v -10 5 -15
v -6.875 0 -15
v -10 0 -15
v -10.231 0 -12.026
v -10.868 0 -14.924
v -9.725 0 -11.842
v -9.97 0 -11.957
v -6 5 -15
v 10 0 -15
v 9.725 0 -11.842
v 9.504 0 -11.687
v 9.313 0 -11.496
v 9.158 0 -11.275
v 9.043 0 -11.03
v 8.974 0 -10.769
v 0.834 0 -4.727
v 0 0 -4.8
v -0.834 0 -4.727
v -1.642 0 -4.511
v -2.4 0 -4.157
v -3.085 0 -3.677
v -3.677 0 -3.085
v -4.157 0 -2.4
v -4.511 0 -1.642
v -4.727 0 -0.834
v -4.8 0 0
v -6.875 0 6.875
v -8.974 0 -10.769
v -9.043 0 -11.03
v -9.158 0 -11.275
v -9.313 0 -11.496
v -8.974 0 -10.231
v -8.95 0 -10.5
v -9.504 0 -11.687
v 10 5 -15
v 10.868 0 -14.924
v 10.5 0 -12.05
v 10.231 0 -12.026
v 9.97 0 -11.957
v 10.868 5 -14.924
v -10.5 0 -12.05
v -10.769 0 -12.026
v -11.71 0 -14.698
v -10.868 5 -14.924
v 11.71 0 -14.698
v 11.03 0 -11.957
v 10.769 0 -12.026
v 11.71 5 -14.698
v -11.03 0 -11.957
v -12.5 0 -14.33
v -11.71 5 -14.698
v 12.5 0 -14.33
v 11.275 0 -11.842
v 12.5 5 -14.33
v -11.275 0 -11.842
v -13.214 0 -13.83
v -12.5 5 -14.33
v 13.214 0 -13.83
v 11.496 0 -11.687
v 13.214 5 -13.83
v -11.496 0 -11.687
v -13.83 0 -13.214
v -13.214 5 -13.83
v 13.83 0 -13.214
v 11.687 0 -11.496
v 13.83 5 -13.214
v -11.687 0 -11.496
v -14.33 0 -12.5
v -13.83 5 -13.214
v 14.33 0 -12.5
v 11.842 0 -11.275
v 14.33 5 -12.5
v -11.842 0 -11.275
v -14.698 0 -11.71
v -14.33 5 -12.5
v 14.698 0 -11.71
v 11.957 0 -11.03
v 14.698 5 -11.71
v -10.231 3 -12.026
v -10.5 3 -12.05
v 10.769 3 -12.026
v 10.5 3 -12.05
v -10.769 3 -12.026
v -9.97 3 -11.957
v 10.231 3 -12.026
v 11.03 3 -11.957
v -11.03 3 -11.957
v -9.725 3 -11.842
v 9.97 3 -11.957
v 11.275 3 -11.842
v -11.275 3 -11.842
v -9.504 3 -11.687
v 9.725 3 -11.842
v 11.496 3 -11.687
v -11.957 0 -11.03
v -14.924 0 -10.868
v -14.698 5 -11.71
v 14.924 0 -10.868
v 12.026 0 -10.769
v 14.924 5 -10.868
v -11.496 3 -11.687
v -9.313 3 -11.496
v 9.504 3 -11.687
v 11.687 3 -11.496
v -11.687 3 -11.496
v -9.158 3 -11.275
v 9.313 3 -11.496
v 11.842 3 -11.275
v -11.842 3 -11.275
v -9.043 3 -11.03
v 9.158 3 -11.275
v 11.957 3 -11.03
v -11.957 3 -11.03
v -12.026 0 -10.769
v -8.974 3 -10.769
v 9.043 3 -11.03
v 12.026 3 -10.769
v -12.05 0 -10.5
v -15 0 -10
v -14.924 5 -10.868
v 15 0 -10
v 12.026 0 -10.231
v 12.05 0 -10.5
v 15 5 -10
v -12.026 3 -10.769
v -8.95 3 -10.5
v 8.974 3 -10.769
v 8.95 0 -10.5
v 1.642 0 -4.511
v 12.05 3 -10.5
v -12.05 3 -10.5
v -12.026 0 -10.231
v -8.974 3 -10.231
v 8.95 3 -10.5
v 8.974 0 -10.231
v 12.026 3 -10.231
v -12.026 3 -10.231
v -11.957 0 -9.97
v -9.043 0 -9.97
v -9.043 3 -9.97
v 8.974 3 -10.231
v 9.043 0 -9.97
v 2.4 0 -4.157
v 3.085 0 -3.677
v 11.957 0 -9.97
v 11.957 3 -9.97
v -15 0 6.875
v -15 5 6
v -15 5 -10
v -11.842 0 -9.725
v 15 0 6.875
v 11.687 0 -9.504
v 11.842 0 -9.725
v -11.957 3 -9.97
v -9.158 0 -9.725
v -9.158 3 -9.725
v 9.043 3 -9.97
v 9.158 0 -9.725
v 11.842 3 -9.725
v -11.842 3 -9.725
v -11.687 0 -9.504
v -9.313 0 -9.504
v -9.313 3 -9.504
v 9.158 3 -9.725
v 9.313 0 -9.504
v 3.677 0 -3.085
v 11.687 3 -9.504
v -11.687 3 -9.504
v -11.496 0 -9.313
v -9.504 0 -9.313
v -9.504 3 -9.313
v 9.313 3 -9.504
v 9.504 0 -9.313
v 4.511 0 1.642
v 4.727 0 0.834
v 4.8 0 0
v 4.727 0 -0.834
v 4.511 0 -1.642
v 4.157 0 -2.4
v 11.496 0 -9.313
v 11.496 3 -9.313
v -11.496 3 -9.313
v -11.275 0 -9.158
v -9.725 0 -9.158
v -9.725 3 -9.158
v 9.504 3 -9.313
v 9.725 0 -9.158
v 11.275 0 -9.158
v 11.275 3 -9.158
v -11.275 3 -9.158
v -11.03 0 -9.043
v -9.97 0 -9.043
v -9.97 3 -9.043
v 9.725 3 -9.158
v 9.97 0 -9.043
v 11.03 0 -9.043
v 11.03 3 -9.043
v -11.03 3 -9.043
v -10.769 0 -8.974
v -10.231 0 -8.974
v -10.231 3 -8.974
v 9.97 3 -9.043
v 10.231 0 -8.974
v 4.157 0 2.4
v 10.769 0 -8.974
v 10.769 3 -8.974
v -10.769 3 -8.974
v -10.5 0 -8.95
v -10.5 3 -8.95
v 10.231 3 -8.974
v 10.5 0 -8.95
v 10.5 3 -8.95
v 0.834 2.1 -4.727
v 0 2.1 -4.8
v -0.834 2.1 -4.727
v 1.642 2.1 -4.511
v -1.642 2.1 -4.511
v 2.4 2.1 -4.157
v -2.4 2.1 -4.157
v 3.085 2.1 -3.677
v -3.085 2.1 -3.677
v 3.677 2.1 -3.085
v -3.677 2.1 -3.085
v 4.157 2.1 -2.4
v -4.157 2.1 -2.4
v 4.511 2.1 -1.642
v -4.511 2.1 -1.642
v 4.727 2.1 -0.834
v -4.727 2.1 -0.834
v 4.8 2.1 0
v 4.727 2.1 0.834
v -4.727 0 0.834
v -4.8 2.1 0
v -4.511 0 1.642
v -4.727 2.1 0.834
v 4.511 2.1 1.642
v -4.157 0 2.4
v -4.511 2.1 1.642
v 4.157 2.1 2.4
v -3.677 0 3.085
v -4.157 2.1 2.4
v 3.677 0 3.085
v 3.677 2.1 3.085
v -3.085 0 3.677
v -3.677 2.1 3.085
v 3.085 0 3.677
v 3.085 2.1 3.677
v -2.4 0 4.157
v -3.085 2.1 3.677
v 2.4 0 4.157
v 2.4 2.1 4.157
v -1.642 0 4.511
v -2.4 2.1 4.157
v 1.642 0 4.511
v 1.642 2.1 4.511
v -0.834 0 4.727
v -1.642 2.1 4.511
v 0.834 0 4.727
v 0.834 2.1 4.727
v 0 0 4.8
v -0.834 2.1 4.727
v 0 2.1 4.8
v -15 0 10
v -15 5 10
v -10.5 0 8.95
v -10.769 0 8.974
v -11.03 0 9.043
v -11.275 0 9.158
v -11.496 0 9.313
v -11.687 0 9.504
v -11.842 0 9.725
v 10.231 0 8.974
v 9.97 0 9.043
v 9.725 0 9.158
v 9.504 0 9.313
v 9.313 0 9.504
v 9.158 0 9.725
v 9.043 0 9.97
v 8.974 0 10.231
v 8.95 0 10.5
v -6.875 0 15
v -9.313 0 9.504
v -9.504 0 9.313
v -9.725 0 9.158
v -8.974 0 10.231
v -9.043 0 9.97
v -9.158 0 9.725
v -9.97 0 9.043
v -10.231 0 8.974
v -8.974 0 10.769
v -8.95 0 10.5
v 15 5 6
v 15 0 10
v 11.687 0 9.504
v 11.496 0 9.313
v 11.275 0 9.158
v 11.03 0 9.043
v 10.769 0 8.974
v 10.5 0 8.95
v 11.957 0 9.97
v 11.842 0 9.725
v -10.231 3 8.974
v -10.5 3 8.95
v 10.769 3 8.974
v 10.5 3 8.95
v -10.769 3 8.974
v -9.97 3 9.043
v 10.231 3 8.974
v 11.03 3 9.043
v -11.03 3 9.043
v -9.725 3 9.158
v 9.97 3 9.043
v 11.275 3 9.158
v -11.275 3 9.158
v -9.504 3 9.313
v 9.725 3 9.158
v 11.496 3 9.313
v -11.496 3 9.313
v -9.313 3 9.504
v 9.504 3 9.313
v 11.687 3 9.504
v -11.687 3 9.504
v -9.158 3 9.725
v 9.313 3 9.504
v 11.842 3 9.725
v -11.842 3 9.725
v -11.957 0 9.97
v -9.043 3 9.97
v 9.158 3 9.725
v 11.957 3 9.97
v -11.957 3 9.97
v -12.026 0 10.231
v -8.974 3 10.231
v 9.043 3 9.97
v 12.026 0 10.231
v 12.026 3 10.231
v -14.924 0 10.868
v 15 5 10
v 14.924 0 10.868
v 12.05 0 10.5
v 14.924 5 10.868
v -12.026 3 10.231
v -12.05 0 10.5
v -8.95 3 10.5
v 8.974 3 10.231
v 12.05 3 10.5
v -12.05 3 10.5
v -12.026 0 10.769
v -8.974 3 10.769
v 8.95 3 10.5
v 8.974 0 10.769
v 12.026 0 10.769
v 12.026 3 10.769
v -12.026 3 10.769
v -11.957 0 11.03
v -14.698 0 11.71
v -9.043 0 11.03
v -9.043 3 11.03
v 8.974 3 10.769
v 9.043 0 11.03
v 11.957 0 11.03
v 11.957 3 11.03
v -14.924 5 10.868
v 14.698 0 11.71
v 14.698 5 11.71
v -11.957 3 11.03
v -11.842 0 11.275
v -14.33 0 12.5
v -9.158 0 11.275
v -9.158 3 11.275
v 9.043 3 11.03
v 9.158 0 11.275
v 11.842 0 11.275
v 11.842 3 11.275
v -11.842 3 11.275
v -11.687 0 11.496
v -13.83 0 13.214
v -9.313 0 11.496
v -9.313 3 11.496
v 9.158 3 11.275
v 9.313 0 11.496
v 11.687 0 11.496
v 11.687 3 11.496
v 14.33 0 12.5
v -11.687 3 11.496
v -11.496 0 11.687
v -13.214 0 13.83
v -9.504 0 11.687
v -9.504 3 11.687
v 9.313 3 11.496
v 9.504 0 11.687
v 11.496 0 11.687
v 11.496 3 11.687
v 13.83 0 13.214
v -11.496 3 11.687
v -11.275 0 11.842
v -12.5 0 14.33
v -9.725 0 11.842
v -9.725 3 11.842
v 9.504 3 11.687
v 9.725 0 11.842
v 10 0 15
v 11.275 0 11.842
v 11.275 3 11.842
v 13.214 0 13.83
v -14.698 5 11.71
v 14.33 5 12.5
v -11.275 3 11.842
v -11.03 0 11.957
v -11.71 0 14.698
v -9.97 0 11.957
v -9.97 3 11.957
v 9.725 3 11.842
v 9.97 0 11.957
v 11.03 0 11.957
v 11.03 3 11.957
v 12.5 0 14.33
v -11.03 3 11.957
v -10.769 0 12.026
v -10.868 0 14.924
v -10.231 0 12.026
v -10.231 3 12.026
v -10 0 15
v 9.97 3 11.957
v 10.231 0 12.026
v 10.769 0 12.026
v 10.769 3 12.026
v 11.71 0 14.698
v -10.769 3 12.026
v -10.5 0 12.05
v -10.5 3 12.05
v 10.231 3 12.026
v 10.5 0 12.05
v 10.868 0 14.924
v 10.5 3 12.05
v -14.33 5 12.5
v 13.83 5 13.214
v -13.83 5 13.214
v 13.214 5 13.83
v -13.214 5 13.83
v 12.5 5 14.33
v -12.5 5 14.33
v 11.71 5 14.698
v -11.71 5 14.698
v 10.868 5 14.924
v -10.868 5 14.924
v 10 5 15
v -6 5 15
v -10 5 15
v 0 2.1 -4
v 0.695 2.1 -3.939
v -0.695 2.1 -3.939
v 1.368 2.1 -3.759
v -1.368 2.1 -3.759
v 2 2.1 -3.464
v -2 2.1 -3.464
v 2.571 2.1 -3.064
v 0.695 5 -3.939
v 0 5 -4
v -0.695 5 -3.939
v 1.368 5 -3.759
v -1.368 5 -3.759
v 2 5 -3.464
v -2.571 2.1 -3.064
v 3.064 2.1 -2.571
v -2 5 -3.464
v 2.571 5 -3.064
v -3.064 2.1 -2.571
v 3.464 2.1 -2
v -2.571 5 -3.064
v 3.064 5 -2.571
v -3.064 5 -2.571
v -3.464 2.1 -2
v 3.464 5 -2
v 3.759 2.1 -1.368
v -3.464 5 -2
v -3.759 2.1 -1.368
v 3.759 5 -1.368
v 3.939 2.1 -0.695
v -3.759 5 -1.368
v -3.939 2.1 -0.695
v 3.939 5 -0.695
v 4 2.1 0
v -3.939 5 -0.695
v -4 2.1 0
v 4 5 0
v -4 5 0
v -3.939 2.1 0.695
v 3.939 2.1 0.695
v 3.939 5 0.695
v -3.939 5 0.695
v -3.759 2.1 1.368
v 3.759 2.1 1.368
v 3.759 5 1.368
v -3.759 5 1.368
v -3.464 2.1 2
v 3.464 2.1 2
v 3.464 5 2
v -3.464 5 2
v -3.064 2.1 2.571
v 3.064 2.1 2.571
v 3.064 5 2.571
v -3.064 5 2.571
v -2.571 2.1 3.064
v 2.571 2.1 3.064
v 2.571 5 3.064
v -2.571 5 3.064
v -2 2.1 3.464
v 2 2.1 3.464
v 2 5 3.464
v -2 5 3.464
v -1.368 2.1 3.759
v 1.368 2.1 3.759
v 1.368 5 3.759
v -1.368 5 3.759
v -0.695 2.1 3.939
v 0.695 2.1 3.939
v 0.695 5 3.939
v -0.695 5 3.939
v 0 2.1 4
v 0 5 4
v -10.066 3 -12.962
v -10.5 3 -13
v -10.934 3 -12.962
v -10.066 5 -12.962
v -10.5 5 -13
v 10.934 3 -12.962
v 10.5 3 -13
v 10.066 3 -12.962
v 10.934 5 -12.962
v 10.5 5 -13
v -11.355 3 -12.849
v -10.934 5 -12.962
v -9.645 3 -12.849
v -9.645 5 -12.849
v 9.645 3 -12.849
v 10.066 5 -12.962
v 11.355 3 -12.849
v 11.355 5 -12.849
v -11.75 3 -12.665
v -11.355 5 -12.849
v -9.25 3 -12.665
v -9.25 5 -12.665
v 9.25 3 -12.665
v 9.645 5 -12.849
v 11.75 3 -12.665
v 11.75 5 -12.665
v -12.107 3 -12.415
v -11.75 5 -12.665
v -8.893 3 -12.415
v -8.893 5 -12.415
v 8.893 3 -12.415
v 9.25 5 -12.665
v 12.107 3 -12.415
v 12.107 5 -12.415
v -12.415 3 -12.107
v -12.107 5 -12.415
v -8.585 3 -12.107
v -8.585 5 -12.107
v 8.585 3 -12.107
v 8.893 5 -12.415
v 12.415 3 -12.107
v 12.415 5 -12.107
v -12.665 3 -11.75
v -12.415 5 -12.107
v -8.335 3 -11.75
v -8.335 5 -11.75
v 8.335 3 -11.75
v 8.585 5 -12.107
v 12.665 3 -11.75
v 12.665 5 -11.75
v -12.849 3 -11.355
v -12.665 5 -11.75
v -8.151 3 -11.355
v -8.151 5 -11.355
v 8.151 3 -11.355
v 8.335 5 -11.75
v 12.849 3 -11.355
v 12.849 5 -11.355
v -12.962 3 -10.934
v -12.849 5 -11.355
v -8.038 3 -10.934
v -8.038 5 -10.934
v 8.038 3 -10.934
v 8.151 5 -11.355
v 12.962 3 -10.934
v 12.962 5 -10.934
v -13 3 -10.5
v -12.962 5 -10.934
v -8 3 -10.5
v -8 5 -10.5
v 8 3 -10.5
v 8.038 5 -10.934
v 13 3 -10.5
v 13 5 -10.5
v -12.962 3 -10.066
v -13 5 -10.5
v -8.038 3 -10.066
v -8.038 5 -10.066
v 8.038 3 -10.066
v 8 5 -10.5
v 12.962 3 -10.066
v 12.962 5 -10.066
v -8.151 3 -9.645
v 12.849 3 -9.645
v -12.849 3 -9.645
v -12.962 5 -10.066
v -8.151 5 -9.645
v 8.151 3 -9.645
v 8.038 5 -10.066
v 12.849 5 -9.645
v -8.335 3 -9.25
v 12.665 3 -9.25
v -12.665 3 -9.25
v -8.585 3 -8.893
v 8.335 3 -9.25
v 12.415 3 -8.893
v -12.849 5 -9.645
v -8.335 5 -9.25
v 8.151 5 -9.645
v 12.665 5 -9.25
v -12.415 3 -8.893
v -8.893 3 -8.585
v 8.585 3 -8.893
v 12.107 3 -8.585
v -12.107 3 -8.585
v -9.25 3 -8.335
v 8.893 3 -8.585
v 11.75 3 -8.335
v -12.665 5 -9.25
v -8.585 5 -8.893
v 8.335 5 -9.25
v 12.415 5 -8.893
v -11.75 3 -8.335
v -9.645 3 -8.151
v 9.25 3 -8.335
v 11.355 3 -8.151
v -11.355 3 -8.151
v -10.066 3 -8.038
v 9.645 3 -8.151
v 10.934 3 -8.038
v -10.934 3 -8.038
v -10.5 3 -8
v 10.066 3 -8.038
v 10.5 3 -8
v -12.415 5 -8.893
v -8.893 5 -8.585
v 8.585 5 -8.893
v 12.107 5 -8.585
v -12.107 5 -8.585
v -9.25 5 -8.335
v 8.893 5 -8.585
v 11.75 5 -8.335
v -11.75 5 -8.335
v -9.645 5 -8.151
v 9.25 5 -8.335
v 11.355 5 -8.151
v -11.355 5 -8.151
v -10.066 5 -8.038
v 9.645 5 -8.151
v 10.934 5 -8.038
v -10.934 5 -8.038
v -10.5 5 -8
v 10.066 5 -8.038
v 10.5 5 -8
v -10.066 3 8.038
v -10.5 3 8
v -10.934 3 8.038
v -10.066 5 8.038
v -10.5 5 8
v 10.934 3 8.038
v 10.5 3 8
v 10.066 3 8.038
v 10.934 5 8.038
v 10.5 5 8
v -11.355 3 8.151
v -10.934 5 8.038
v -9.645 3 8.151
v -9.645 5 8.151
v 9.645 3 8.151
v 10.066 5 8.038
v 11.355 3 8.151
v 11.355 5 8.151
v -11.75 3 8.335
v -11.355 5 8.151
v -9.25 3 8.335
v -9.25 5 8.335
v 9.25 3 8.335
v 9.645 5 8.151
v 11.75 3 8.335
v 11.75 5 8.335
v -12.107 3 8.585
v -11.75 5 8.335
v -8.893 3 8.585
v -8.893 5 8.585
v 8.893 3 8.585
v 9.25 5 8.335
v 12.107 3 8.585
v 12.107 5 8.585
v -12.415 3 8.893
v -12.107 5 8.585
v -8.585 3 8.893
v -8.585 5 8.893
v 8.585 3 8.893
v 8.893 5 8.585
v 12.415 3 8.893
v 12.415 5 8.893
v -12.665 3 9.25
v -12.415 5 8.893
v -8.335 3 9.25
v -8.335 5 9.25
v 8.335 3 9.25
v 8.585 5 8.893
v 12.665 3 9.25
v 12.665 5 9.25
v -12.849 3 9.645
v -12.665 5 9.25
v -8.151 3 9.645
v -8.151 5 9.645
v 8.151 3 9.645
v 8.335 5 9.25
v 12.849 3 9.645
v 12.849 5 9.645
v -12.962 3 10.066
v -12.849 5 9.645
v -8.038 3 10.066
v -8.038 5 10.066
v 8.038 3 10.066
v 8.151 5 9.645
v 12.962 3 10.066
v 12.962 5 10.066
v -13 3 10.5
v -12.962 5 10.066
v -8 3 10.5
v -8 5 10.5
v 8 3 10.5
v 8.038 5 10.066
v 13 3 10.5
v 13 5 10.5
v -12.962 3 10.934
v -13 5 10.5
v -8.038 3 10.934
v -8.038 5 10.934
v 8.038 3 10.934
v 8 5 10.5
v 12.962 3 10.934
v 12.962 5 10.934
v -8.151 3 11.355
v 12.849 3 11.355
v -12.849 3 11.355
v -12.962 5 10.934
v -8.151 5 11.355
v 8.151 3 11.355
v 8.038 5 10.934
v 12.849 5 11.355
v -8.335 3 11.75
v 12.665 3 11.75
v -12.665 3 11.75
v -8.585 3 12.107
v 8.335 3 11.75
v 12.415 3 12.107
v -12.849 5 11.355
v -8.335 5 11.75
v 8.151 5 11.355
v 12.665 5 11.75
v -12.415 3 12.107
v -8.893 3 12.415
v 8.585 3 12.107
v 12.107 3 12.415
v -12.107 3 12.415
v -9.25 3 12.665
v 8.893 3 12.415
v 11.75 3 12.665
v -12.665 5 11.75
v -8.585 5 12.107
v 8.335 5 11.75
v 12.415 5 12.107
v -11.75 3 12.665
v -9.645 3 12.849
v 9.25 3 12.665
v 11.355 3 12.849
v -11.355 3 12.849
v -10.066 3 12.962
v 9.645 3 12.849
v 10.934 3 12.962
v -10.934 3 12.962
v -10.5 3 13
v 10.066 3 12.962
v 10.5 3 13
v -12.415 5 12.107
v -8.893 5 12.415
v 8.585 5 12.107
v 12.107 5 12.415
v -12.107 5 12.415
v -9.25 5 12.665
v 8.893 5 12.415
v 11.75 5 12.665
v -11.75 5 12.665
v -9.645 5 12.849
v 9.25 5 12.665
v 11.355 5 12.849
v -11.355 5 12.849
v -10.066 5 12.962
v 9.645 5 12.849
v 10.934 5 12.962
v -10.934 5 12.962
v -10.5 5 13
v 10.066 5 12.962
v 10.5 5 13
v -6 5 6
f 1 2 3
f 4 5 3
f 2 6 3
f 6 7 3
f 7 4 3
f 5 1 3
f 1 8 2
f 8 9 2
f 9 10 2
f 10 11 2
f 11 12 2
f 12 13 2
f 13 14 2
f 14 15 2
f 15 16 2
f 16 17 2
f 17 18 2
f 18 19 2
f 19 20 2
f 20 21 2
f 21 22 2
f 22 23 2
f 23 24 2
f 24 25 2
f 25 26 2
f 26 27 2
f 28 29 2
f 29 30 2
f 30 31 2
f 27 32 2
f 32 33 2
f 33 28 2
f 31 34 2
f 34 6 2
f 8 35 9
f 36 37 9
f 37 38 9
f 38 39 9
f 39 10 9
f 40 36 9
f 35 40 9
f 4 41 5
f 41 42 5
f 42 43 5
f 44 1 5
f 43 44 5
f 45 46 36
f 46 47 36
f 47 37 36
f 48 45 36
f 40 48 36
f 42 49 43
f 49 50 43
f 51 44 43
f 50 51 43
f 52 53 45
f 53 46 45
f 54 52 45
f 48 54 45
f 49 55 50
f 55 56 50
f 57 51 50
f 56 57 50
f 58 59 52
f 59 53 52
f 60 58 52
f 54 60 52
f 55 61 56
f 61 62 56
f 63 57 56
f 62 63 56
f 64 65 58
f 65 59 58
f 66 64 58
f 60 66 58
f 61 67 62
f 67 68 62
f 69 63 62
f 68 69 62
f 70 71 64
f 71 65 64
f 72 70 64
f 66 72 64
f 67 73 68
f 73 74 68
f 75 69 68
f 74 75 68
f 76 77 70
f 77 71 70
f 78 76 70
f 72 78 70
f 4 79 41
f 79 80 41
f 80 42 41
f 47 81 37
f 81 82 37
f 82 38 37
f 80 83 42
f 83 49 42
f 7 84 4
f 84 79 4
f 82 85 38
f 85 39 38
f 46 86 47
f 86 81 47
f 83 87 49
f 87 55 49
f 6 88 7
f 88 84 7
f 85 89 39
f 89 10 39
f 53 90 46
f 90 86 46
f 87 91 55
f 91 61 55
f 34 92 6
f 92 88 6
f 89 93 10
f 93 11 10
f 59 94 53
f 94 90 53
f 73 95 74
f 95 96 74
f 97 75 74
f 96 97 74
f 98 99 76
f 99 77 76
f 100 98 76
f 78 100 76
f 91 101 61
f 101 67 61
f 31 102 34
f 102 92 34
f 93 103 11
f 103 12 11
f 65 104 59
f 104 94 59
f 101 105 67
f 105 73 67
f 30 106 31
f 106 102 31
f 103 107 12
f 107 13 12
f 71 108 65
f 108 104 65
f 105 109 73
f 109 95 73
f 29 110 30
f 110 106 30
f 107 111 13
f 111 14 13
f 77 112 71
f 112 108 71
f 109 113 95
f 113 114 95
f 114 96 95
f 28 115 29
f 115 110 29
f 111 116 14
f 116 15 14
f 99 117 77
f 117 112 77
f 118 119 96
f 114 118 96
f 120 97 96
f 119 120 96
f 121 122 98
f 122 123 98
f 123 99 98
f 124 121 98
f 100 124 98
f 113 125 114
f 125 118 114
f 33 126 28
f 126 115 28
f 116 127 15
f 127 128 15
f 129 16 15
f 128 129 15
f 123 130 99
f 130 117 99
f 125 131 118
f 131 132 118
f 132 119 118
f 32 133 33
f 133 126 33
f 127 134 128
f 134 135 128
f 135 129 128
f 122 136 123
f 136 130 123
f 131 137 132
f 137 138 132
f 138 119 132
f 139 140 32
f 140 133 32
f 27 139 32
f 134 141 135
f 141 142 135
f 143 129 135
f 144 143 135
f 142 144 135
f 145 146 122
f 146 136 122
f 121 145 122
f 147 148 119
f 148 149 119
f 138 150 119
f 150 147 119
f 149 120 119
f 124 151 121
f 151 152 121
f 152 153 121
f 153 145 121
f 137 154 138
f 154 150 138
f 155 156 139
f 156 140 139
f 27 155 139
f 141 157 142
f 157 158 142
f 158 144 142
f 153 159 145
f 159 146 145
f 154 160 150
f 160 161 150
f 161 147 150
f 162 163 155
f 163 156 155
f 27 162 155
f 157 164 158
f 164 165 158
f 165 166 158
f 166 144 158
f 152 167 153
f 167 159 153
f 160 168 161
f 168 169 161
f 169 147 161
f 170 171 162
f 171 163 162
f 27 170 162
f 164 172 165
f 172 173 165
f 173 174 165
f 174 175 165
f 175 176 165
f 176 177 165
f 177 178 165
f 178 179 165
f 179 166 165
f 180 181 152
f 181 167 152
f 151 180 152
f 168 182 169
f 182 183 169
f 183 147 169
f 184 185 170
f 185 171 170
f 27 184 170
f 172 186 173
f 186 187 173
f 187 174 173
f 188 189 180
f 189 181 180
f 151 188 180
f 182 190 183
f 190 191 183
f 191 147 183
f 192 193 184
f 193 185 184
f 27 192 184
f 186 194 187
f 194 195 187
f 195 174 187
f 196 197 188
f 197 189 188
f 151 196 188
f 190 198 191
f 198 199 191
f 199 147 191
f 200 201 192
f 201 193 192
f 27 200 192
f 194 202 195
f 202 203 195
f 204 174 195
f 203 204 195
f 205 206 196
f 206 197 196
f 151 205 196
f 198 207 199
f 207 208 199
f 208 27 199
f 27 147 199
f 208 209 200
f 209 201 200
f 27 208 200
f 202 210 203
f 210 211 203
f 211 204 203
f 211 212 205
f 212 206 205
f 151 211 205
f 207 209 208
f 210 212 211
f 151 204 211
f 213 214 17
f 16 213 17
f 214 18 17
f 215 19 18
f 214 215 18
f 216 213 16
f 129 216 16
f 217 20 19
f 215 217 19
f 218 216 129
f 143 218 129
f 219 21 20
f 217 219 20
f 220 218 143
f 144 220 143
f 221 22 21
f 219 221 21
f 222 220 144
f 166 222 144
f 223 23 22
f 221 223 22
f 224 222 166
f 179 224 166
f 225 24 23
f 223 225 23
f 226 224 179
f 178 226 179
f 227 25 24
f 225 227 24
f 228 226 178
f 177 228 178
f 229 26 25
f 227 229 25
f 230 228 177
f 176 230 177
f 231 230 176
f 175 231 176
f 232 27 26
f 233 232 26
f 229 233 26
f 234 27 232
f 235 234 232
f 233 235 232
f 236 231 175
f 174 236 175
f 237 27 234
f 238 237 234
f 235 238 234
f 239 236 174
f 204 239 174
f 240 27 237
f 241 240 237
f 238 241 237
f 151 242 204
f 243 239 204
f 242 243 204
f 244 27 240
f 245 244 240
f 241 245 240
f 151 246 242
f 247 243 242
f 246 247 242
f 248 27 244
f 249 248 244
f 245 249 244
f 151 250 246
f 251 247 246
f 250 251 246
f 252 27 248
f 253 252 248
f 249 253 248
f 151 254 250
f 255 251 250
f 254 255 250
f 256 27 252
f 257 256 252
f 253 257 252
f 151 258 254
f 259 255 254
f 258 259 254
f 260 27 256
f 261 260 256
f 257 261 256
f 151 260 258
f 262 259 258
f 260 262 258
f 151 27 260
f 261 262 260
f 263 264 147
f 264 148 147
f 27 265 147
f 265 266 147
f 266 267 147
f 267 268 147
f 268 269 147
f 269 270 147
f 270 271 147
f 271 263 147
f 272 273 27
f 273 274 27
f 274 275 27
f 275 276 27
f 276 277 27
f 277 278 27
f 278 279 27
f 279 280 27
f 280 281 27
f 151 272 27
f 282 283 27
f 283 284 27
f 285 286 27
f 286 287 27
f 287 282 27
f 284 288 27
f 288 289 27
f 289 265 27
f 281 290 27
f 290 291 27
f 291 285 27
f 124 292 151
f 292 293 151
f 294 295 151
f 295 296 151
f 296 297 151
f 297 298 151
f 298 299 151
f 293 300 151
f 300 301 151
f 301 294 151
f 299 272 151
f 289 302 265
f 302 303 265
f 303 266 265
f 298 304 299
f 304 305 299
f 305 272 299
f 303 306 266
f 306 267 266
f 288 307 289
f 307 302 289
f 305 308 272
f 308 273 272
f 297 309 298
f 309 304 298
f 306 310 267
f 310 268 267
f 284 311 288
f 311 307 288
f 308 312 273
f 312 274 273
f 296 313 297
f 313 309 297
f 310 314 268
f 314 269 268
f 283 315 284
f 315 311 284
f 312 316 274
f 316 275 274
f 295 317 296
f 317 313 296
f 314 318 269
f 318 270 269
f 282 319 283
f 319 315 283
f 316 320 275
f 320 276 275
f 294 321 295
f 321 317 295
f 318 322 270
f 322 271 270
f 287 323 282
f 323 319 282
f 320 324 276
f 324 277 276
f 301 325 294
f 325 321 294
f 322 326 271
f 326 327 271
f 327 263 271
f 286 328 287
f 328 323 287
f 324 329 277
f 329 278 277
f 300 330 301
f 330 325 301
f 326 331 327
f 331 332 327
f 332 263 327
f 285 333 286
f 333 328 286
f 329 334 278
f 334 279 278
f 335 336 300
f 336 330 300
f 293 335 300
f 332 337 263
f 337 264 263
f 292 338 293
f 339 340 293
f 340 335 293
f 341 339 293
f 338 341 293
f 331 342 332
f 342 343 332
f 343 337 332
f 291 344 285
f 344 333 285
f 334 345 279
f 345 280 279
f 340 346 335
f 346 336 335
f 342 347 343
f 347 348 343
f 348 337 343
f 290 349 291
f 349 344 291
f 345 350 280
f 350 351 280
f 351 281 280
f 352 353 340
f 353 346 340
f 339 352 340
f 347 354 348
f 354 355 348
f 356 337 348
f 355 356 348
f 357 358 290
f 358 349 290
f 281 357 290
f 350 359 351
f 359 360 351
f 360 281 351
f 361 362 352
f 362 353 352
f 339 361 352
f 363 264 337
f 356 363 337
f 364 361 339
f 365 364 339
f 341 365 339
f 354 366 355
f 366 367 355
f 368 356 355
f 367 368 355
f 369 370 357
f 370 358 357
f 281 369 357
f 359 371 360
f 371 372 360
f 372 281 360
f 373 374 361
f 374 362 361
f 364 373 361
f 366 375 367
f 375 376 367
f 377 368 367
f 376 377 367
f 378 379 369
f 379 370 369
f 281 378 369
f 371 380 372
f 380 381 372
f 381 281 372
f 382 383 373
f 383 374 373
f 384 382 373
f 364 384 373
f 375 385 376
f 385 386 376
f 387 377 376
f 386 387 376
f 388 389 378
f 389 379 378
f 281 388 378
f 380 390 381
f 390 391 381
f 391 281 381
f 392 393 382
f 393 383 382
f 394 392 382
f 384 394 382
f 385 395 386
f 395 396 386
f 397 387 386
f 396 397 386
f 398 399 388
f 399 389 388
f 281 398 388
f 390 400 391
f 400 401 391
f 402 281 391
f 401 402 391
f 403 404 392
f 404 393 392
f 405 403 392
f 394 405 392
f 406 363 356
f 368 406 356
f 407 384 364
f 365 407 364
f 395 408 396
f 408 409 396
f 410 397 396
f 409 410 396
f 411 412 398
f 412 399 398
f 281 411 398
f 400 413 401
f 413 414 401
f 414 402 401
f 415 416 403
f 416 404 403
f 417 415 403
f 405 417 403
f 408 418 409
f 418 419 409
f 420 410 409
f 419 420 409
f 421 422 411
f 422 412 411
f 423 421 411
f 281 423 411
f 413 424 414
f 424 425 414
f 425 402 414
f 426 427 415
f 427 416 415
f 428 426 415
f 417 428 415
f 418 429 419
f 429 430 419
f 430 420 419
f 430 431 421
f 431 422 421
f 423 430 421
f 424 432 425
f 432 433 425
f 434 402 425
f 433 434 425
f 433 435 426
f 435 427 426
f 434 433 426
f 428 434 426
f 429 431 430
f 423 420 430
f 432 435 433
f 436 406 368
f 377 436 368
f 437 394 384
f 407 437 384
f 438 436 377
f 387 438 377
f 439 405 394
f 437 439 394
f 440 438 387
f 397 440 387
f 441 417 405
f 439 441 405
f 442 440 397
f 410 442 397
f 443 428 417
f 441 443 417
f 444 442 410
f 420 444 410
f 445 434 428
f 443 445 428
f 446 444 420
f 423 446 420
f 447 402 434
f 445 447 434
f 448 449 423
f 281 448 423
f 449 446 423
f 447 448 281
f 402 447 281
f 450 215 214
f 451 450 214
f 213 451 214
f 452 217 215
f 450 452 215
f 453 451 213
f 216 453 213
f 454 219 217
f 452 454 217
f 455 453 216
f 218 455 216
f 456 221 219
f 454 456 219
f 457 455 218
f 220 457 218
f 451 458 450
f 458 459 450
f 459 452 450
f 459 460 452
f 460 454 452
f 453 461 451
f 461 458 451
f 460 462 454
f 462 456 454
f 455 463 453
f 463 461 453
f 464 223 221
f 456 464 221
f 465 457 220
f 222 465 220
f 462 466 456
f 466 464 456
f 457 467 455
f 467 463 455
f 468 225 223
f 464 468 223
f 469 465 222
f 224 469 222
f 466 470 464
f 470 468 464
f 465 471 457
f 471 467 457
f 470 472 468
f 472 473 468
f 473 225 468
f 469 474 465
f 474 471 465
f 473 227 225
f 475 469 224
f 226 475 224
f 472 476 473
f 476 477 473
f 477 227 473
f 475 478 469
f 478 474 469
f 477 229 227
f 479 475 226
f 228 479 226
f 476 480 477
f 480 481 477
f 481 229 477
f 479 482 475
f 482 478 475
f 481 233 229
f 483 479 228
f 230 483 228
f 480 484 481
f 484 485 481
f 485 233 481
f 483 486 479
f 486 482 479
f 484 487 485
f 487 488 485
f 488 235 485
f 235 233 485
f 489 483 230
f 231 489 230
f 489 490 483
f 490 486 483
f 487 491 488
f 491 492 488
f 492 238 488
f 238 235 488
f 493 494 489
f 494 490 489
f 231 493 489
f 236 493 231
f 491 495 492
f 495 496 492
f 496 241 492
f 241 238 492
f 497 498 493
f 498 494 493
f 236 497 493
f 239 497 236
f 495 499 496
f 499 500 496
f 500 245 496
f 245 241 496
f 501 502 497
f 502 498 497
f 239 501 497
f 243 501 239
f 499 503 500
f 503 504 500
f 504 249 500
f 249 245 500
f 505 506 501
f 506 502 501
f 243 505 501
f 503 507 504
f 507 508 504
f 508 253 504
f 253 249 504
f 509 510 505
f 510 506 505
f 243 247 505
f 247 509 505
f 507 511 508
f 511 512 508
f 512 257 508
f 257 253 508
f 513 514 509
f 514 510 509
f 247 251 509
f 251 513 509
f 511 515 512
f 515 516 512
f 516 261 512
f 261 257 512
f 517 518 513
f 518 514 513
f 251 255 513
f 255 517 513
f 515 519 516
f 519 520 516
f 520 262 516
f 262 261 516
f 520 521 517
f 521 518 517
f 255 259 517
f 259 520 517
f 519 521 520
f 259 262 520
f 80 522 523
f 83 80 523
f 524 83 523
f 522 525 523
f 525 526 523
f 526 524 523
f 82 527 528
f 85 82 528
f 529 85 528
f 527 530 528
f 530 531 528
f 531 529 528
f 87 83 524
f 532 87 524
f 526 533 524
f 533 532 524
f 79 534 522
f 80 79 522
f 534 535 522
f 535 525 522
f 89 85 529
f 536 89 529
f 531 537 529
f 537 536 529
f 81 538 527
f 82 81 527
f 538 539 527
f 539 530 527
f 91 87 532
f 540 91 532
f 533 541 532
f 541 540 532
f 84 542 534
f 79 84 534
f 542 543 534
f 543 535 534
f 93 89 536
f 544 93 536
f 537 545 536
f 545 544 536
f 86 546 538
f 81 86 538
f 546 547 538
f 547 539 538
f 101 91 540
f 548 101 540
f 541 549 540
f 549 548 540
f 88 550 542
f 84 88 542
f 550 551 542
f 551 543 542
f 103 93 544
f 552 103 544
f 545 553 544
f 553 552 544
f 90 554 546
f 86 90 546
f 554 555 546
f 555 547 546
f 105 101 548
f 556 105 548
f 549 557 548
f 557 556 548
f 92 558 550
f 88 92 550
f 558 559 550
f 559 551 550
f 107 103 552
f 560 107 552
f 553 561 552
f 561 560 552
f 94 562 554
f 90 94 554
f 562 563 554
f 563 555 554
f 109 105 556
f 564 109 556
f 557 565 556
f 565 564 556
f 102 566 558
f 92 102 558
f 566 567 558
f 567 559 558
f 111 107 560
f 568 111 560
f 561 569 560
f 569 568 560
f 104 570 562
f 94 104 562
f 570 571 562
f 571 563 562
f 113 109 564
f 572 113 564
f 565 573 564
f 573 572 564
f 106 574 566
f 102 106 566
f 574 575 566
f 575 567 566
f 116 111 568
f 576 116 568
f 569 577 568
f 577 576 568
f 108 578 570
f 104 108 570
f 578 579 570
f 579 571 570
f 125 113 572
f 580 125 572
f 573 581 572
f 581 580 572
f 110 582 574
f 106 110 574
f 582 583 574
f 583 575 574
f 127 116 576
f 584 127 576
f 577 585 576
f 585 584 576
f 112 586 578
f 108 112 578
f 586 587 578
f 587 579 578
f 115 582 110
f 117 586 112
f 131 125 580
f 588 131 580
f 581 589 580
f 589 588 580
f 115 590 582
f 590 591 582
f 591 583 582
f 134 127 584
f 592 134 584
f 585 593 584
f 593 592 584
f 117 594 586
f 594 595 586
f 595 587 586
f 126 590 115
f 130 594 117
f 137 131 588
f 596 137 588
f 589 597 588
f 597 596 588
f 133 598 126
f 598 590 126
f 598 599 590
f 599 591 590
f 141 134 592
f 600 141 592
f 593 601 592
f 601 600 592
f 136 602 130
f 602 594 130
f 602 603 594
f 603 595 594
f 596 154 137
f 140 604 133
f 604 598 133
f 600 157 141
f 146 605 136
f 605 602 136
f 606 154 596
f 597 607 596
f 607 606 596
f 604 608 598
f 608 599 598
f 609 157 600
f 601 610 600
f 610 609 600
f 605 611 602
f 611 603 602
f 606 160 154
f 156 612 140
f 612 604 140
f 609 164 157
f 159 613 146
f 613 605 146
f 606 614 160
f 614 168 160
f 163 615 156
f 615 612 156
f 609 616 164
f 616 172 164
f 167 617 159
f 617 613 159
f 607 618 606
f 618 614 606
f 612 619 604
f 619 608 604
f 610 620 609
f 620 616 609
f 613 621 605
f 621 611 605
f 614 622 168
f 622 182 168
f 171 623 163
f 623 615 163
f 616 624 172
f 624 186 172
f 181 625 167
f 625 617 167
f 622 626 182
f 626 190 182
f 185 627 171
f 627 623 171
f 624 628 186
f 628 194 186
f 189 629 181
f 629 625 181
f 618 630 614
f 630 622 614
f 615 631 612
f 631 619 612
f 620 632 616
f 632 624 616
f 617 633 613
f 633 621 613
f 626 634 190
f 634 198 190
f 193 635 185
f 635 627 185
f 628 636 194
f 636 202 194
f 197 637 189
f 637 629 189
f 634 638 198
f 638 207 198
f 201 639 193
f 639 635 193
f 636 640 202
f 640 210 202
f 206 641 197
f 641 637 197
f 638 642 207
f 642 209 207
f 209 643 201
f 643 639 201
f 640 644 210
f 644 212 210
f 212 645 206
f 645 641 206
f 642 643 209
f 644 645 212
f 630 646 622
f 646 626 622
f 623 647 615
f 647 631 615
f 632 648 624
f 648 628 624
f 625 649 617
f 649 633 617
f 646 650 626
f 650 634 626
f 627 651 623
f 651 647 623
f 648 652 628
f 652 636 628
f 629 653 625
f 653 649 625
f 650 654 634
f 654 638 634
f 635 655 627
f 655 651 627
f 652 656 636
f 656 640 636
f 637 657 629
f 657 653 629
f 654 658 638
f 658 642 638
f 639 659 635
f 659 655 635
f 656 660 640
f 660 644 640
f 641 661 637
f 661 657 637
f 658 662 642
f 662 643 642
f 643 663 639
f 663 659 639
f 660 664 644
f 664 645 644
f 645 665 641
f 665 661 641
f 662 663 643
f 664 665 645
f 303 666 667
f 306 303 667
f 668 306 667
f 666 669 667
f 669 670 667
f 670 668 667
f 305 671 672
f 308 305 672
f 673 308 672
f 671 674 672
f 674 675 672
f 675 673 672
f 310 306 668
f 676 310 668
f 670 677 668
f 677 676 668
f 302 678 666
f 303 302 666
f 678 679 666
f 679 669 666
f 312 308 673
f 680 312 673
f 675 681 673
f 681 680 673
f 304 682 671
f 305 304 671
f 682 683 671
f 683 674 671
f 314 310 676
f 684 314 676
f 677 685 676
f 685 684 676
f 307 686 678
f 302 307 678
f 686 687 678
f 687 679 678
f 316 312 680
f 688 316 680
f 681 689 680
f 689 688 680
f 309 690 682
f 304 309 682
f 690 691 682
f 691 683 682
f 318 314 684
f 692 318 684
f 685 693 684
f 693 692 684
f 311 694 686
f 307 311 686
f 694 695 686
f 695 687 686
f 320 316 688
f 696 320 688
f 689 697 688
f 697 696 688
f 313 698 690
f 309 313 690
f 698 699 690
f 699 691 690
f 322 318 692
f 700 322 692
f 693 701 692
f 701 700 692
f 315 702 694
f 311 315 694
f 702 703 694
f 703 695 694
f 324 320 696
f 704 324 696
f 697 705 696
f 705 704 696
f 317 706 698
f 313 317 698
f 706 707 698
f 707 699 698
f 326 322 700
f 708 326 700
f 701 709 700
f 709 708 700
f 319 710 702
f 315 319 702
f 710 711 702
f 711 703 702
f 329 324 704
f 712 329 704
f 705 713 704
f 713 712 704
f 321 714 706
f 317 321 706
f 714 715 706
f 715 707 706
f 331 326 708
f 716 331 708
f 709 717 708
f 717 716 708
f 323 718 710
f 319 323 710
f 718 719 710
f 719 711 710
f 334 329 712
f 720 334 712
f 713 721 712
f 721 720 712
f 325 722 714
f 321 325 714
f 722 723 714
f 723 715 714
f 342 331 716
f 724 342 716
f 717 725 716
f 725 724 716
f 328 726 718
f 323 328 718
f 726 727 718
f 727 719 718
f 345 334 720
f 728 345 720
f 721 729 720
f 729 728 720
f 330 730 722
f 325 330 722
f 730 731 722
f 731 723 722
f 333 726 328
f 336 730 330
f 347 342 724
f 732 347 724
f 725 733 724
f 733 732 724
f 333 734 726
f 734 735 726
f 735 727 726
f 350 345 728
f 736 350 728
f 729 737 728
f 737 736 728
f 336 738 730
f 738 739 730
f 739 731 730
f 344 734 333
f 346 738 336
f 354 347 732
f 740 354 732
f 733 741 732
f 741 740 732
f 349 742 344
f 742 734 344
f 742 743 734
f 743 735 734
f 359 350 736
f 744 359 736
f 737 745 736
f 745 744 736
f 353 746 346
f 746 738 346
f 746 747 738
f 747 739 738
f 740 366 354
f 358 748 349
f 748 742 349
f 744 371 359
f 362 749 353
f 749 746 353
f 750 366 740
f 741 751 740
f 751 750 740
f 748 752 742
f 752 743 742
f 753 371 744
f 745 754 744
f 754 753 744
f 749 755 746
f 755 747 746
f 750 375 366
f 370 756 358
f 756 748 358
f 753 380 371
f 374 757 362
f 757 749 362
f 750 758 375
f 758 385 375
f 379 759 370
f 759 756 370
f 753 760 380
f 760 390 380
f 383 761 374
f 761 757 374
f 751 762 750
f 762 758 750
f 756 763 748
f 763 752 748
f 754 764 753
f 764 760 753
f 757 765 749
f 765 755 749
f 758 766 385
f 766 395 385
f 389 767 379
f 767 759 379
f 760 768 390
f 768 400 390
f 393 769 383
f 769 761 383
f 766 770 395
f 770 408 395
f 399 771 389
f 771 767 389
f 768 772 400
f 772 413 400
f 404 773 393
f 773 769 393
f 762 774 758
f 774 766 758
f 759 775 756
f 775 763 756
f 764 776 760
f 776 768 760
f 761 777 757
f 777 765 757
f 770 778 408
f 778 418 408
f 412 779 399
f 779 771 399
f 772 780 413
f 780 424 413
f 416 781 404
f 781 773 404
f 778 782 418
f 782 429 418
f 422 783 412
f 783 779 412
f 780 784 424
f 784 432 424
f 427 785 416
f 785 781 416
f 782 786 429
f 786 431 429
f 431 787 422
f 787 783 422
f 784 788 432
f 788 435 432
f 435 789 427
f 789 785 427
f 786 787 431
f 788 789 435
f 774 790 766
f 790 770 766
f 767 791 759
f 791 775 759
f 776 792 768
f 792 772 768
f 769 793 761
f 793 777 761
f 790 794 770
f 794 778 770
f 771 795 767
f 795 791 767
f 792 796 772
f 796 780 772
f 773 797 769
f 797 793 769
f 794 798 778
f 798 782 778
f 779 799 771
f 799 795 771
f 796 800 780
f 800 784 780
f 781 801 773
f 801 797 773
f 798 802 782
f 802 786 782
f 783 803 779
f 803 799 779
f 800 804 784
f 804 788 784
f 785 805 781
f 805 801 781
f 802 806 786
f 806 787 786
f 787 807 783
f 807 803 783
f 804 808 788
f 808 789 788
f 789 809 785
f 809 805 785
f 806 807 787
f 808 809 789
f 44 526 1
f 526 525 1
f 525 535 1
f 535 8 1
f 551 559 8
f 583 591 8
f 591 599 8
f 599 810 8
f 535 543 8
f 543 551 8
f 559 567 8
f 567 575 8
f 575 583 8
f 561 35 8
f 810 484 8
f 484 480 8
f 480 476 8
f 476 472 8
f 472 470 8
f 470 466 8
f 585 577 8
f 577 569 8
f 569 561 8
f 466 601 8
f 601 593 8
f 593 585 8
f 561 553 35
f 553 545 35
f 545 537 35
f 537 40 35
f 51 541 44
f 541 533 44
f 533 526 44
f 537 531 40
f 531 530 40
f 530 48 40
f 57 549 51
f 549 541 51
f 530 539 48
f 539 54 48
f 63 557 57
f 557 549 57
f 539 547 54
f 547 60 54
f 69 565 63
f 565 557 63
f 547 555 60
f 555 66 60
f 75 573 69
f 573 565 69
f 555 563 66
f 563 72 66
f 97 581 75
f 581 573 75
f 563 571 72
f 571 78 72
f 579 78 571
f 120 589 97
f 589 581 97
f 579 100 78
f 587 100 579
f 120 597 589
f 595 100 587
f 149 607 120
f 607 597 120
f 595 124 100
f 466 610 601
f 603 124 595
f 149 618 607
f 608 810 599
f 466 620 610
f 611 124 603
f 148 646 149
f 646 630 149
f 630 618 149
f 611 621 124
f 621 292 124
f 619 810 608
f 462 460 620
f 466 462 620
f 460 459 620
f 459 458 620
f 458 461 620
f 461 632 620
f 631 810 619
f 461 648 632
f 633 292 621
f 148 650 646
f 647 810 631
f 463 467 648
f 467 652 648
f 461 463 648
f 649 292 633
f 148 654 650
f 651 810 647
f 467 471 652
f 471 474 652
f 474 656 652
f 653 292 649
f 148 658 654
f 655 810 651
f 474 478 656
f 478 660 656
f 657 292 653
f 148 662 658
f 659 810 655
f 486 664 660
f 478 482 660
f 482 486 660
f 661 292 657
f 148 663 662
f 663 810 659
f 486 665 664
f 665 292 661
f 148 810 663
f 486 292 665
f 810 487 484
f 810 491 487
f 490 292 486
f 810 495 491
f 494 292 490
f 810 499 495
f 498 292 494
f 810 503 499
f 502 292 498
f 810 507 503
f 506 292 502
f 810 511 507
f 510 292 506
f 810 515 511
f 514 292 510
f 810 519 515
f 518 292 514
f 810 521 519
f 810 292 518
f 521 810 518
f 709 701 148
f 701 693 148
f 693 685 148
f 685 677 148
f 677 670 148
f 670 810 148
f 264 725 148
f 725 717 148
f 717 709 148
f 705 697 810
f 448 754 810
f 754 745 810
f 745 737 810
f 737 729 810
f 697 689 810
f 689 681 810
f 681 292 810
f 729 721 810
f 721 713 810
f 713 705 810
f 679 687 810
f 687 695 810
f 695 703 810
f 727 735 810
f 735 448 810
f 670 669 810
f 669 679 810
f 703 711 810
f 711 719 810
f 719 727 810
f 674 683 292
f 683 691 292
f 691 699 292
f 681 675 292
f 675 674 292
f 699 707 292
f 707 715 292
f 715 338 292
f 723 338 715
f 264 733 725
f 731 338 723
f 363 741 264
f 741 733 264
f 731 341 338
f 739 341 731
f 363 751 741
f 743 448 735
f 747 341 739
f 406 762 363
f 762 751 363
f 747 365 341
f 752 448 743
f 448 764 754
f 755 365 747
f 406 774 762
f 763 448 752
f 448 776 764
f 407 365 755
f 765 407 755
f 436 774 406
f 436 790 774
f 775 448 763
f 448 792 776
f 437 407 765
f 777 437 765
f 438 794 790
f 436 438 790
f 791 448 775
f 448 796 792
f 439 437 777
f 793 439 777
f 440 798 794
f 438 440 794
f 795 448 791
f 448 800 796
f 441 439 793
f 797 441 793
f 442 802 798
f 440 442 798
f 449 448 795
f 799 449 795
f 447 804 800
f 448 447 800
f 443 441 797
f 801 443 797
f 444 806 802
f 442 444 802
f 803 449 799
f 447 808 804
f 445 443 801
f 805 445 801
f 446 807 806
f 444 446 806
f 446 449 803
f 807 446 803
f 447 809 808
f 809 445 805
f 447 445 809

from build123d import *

# Parameters (mm, degrees)
SKETCH1_W               = 30
SKETCH1_H               = 30
BOSS_EXTRUDE1_DEPTH     = 5
SKETCH2_R               = 4
CUT_EXTRUDE1_DEPTH      = 1
CUT_EXTRUDE1_DEPTH_BACK = 6
SKETCH3_R               = 1.55
CUT_EXTRUDE2_DEPTH      = 1
CUT_EXTRUDE2_DEPTH_BACK = 6
SKETCH4_R               = 4.8
CUT_EXTRUDE3_DEPTH      = 2.1
FILLET1_R               = 5
SKETCH5_R               = 2.5
CUT_EXTRUDE4_DEPTH      = 2


with BuildPart() as part:
    # Sketch1 → Boss-Extrude1 (new body)
    with BuildSketch(Plane(origin=(0, 0, 0), x_dir=(1, 0, 0), z_dir=(0, 1, 0))):
        Rectangle(SKETCH1_W, SKETCH1_H)
    extrude(amount=BOSS_EXTRUDE1_DEPTH)

    # Sketch2 → Cut-Extrude1 (cut, two sides)
    with BuildSketch(Plane(origin=(0, 5, 0), x_dir=(1, 0, 0), z_dir=(0, 1, 0))) as cut_extrude1_sk:
        Circle(SKETCH2_R)
    extrude(amount=CUT_EXTRUDE1_DEPTH, mode=Mode.SUBTRACT)
    extrude(cut_extrude1_sk.sketch, amount=-CUT_EXTRUDE1_DEPTH_BACK, mode=Mode.SUBTRACT)

    # Sketch3 → Cut-Extrude2 (cut, two sides)
    with BuildSketch(Plane(origin=(0, 5, 0), x_dir=(1, 0, 0), z_dir=(0, 1, 0))) as cut_extrude2_sk:
        with Locations((-10.5, 10.5)):
            Circle(SKETCH3_R)
        with Locations((10.5, 10.5)):
            Circle(SKETCH3_R)
        with Locations((10.5, -10.5)):
            Circle(SKETCH3_R)
        with Locations((-10.5, -10.5)):
            Circle(SKETCH3_R)
    extrude(amount=CUT_EXTRUDE2_DEPTH, mode=Mode.SUBTRACT)
    extrude(cut_extrude2_sk.sketch, amount=-CUT_EXTRUDE2_DEPTH_BACK, mode=Mode.SUBTRACT)

    # Sketch4 → Cut-Extrude3 (cut)
    with BuildSketch(Plane.XZ):
        Circle(SKETCH4_R)
    extrude(amount=-CUT_EXTRUDE3_DEPTH, mode=Mode.SUBTRACT)

    # Fillet1
    fillet1_edges = [part.edges().sort_by_distance(p)[0] for p in [
        (15, 2.5, 15),
        (-15, 2.5, 15),
        (-15, 2.5, -15),
        (15, 2.5, -15),
    ]]
    fillet(fillet1_edges, radius=FILLET1_R)

    # Sketch5 → Cut-Extrude4 (cut)
    with BuildSketch(Plane(origin=(0, 5, 0), x_dir=(1, 0, 0), z_dir=(0, 1, 0))):
        with Locations((-10.5, 10.5)):
            Circle(SKETCH5_R)
        with Locations((10.5, 10.5)):
            Circle(SKETCH5_R)
        with Locations((-10.5, -10.5)):
            Circle(SKETCH5_R)
        with Locations((10.5, -10.5)):
            Circle(SKETCH5_R)
    extrude(amount=-CUT_EXTRUDE4_DEPTH, mode=Mode.SUBTRACT)


solid = part.part
